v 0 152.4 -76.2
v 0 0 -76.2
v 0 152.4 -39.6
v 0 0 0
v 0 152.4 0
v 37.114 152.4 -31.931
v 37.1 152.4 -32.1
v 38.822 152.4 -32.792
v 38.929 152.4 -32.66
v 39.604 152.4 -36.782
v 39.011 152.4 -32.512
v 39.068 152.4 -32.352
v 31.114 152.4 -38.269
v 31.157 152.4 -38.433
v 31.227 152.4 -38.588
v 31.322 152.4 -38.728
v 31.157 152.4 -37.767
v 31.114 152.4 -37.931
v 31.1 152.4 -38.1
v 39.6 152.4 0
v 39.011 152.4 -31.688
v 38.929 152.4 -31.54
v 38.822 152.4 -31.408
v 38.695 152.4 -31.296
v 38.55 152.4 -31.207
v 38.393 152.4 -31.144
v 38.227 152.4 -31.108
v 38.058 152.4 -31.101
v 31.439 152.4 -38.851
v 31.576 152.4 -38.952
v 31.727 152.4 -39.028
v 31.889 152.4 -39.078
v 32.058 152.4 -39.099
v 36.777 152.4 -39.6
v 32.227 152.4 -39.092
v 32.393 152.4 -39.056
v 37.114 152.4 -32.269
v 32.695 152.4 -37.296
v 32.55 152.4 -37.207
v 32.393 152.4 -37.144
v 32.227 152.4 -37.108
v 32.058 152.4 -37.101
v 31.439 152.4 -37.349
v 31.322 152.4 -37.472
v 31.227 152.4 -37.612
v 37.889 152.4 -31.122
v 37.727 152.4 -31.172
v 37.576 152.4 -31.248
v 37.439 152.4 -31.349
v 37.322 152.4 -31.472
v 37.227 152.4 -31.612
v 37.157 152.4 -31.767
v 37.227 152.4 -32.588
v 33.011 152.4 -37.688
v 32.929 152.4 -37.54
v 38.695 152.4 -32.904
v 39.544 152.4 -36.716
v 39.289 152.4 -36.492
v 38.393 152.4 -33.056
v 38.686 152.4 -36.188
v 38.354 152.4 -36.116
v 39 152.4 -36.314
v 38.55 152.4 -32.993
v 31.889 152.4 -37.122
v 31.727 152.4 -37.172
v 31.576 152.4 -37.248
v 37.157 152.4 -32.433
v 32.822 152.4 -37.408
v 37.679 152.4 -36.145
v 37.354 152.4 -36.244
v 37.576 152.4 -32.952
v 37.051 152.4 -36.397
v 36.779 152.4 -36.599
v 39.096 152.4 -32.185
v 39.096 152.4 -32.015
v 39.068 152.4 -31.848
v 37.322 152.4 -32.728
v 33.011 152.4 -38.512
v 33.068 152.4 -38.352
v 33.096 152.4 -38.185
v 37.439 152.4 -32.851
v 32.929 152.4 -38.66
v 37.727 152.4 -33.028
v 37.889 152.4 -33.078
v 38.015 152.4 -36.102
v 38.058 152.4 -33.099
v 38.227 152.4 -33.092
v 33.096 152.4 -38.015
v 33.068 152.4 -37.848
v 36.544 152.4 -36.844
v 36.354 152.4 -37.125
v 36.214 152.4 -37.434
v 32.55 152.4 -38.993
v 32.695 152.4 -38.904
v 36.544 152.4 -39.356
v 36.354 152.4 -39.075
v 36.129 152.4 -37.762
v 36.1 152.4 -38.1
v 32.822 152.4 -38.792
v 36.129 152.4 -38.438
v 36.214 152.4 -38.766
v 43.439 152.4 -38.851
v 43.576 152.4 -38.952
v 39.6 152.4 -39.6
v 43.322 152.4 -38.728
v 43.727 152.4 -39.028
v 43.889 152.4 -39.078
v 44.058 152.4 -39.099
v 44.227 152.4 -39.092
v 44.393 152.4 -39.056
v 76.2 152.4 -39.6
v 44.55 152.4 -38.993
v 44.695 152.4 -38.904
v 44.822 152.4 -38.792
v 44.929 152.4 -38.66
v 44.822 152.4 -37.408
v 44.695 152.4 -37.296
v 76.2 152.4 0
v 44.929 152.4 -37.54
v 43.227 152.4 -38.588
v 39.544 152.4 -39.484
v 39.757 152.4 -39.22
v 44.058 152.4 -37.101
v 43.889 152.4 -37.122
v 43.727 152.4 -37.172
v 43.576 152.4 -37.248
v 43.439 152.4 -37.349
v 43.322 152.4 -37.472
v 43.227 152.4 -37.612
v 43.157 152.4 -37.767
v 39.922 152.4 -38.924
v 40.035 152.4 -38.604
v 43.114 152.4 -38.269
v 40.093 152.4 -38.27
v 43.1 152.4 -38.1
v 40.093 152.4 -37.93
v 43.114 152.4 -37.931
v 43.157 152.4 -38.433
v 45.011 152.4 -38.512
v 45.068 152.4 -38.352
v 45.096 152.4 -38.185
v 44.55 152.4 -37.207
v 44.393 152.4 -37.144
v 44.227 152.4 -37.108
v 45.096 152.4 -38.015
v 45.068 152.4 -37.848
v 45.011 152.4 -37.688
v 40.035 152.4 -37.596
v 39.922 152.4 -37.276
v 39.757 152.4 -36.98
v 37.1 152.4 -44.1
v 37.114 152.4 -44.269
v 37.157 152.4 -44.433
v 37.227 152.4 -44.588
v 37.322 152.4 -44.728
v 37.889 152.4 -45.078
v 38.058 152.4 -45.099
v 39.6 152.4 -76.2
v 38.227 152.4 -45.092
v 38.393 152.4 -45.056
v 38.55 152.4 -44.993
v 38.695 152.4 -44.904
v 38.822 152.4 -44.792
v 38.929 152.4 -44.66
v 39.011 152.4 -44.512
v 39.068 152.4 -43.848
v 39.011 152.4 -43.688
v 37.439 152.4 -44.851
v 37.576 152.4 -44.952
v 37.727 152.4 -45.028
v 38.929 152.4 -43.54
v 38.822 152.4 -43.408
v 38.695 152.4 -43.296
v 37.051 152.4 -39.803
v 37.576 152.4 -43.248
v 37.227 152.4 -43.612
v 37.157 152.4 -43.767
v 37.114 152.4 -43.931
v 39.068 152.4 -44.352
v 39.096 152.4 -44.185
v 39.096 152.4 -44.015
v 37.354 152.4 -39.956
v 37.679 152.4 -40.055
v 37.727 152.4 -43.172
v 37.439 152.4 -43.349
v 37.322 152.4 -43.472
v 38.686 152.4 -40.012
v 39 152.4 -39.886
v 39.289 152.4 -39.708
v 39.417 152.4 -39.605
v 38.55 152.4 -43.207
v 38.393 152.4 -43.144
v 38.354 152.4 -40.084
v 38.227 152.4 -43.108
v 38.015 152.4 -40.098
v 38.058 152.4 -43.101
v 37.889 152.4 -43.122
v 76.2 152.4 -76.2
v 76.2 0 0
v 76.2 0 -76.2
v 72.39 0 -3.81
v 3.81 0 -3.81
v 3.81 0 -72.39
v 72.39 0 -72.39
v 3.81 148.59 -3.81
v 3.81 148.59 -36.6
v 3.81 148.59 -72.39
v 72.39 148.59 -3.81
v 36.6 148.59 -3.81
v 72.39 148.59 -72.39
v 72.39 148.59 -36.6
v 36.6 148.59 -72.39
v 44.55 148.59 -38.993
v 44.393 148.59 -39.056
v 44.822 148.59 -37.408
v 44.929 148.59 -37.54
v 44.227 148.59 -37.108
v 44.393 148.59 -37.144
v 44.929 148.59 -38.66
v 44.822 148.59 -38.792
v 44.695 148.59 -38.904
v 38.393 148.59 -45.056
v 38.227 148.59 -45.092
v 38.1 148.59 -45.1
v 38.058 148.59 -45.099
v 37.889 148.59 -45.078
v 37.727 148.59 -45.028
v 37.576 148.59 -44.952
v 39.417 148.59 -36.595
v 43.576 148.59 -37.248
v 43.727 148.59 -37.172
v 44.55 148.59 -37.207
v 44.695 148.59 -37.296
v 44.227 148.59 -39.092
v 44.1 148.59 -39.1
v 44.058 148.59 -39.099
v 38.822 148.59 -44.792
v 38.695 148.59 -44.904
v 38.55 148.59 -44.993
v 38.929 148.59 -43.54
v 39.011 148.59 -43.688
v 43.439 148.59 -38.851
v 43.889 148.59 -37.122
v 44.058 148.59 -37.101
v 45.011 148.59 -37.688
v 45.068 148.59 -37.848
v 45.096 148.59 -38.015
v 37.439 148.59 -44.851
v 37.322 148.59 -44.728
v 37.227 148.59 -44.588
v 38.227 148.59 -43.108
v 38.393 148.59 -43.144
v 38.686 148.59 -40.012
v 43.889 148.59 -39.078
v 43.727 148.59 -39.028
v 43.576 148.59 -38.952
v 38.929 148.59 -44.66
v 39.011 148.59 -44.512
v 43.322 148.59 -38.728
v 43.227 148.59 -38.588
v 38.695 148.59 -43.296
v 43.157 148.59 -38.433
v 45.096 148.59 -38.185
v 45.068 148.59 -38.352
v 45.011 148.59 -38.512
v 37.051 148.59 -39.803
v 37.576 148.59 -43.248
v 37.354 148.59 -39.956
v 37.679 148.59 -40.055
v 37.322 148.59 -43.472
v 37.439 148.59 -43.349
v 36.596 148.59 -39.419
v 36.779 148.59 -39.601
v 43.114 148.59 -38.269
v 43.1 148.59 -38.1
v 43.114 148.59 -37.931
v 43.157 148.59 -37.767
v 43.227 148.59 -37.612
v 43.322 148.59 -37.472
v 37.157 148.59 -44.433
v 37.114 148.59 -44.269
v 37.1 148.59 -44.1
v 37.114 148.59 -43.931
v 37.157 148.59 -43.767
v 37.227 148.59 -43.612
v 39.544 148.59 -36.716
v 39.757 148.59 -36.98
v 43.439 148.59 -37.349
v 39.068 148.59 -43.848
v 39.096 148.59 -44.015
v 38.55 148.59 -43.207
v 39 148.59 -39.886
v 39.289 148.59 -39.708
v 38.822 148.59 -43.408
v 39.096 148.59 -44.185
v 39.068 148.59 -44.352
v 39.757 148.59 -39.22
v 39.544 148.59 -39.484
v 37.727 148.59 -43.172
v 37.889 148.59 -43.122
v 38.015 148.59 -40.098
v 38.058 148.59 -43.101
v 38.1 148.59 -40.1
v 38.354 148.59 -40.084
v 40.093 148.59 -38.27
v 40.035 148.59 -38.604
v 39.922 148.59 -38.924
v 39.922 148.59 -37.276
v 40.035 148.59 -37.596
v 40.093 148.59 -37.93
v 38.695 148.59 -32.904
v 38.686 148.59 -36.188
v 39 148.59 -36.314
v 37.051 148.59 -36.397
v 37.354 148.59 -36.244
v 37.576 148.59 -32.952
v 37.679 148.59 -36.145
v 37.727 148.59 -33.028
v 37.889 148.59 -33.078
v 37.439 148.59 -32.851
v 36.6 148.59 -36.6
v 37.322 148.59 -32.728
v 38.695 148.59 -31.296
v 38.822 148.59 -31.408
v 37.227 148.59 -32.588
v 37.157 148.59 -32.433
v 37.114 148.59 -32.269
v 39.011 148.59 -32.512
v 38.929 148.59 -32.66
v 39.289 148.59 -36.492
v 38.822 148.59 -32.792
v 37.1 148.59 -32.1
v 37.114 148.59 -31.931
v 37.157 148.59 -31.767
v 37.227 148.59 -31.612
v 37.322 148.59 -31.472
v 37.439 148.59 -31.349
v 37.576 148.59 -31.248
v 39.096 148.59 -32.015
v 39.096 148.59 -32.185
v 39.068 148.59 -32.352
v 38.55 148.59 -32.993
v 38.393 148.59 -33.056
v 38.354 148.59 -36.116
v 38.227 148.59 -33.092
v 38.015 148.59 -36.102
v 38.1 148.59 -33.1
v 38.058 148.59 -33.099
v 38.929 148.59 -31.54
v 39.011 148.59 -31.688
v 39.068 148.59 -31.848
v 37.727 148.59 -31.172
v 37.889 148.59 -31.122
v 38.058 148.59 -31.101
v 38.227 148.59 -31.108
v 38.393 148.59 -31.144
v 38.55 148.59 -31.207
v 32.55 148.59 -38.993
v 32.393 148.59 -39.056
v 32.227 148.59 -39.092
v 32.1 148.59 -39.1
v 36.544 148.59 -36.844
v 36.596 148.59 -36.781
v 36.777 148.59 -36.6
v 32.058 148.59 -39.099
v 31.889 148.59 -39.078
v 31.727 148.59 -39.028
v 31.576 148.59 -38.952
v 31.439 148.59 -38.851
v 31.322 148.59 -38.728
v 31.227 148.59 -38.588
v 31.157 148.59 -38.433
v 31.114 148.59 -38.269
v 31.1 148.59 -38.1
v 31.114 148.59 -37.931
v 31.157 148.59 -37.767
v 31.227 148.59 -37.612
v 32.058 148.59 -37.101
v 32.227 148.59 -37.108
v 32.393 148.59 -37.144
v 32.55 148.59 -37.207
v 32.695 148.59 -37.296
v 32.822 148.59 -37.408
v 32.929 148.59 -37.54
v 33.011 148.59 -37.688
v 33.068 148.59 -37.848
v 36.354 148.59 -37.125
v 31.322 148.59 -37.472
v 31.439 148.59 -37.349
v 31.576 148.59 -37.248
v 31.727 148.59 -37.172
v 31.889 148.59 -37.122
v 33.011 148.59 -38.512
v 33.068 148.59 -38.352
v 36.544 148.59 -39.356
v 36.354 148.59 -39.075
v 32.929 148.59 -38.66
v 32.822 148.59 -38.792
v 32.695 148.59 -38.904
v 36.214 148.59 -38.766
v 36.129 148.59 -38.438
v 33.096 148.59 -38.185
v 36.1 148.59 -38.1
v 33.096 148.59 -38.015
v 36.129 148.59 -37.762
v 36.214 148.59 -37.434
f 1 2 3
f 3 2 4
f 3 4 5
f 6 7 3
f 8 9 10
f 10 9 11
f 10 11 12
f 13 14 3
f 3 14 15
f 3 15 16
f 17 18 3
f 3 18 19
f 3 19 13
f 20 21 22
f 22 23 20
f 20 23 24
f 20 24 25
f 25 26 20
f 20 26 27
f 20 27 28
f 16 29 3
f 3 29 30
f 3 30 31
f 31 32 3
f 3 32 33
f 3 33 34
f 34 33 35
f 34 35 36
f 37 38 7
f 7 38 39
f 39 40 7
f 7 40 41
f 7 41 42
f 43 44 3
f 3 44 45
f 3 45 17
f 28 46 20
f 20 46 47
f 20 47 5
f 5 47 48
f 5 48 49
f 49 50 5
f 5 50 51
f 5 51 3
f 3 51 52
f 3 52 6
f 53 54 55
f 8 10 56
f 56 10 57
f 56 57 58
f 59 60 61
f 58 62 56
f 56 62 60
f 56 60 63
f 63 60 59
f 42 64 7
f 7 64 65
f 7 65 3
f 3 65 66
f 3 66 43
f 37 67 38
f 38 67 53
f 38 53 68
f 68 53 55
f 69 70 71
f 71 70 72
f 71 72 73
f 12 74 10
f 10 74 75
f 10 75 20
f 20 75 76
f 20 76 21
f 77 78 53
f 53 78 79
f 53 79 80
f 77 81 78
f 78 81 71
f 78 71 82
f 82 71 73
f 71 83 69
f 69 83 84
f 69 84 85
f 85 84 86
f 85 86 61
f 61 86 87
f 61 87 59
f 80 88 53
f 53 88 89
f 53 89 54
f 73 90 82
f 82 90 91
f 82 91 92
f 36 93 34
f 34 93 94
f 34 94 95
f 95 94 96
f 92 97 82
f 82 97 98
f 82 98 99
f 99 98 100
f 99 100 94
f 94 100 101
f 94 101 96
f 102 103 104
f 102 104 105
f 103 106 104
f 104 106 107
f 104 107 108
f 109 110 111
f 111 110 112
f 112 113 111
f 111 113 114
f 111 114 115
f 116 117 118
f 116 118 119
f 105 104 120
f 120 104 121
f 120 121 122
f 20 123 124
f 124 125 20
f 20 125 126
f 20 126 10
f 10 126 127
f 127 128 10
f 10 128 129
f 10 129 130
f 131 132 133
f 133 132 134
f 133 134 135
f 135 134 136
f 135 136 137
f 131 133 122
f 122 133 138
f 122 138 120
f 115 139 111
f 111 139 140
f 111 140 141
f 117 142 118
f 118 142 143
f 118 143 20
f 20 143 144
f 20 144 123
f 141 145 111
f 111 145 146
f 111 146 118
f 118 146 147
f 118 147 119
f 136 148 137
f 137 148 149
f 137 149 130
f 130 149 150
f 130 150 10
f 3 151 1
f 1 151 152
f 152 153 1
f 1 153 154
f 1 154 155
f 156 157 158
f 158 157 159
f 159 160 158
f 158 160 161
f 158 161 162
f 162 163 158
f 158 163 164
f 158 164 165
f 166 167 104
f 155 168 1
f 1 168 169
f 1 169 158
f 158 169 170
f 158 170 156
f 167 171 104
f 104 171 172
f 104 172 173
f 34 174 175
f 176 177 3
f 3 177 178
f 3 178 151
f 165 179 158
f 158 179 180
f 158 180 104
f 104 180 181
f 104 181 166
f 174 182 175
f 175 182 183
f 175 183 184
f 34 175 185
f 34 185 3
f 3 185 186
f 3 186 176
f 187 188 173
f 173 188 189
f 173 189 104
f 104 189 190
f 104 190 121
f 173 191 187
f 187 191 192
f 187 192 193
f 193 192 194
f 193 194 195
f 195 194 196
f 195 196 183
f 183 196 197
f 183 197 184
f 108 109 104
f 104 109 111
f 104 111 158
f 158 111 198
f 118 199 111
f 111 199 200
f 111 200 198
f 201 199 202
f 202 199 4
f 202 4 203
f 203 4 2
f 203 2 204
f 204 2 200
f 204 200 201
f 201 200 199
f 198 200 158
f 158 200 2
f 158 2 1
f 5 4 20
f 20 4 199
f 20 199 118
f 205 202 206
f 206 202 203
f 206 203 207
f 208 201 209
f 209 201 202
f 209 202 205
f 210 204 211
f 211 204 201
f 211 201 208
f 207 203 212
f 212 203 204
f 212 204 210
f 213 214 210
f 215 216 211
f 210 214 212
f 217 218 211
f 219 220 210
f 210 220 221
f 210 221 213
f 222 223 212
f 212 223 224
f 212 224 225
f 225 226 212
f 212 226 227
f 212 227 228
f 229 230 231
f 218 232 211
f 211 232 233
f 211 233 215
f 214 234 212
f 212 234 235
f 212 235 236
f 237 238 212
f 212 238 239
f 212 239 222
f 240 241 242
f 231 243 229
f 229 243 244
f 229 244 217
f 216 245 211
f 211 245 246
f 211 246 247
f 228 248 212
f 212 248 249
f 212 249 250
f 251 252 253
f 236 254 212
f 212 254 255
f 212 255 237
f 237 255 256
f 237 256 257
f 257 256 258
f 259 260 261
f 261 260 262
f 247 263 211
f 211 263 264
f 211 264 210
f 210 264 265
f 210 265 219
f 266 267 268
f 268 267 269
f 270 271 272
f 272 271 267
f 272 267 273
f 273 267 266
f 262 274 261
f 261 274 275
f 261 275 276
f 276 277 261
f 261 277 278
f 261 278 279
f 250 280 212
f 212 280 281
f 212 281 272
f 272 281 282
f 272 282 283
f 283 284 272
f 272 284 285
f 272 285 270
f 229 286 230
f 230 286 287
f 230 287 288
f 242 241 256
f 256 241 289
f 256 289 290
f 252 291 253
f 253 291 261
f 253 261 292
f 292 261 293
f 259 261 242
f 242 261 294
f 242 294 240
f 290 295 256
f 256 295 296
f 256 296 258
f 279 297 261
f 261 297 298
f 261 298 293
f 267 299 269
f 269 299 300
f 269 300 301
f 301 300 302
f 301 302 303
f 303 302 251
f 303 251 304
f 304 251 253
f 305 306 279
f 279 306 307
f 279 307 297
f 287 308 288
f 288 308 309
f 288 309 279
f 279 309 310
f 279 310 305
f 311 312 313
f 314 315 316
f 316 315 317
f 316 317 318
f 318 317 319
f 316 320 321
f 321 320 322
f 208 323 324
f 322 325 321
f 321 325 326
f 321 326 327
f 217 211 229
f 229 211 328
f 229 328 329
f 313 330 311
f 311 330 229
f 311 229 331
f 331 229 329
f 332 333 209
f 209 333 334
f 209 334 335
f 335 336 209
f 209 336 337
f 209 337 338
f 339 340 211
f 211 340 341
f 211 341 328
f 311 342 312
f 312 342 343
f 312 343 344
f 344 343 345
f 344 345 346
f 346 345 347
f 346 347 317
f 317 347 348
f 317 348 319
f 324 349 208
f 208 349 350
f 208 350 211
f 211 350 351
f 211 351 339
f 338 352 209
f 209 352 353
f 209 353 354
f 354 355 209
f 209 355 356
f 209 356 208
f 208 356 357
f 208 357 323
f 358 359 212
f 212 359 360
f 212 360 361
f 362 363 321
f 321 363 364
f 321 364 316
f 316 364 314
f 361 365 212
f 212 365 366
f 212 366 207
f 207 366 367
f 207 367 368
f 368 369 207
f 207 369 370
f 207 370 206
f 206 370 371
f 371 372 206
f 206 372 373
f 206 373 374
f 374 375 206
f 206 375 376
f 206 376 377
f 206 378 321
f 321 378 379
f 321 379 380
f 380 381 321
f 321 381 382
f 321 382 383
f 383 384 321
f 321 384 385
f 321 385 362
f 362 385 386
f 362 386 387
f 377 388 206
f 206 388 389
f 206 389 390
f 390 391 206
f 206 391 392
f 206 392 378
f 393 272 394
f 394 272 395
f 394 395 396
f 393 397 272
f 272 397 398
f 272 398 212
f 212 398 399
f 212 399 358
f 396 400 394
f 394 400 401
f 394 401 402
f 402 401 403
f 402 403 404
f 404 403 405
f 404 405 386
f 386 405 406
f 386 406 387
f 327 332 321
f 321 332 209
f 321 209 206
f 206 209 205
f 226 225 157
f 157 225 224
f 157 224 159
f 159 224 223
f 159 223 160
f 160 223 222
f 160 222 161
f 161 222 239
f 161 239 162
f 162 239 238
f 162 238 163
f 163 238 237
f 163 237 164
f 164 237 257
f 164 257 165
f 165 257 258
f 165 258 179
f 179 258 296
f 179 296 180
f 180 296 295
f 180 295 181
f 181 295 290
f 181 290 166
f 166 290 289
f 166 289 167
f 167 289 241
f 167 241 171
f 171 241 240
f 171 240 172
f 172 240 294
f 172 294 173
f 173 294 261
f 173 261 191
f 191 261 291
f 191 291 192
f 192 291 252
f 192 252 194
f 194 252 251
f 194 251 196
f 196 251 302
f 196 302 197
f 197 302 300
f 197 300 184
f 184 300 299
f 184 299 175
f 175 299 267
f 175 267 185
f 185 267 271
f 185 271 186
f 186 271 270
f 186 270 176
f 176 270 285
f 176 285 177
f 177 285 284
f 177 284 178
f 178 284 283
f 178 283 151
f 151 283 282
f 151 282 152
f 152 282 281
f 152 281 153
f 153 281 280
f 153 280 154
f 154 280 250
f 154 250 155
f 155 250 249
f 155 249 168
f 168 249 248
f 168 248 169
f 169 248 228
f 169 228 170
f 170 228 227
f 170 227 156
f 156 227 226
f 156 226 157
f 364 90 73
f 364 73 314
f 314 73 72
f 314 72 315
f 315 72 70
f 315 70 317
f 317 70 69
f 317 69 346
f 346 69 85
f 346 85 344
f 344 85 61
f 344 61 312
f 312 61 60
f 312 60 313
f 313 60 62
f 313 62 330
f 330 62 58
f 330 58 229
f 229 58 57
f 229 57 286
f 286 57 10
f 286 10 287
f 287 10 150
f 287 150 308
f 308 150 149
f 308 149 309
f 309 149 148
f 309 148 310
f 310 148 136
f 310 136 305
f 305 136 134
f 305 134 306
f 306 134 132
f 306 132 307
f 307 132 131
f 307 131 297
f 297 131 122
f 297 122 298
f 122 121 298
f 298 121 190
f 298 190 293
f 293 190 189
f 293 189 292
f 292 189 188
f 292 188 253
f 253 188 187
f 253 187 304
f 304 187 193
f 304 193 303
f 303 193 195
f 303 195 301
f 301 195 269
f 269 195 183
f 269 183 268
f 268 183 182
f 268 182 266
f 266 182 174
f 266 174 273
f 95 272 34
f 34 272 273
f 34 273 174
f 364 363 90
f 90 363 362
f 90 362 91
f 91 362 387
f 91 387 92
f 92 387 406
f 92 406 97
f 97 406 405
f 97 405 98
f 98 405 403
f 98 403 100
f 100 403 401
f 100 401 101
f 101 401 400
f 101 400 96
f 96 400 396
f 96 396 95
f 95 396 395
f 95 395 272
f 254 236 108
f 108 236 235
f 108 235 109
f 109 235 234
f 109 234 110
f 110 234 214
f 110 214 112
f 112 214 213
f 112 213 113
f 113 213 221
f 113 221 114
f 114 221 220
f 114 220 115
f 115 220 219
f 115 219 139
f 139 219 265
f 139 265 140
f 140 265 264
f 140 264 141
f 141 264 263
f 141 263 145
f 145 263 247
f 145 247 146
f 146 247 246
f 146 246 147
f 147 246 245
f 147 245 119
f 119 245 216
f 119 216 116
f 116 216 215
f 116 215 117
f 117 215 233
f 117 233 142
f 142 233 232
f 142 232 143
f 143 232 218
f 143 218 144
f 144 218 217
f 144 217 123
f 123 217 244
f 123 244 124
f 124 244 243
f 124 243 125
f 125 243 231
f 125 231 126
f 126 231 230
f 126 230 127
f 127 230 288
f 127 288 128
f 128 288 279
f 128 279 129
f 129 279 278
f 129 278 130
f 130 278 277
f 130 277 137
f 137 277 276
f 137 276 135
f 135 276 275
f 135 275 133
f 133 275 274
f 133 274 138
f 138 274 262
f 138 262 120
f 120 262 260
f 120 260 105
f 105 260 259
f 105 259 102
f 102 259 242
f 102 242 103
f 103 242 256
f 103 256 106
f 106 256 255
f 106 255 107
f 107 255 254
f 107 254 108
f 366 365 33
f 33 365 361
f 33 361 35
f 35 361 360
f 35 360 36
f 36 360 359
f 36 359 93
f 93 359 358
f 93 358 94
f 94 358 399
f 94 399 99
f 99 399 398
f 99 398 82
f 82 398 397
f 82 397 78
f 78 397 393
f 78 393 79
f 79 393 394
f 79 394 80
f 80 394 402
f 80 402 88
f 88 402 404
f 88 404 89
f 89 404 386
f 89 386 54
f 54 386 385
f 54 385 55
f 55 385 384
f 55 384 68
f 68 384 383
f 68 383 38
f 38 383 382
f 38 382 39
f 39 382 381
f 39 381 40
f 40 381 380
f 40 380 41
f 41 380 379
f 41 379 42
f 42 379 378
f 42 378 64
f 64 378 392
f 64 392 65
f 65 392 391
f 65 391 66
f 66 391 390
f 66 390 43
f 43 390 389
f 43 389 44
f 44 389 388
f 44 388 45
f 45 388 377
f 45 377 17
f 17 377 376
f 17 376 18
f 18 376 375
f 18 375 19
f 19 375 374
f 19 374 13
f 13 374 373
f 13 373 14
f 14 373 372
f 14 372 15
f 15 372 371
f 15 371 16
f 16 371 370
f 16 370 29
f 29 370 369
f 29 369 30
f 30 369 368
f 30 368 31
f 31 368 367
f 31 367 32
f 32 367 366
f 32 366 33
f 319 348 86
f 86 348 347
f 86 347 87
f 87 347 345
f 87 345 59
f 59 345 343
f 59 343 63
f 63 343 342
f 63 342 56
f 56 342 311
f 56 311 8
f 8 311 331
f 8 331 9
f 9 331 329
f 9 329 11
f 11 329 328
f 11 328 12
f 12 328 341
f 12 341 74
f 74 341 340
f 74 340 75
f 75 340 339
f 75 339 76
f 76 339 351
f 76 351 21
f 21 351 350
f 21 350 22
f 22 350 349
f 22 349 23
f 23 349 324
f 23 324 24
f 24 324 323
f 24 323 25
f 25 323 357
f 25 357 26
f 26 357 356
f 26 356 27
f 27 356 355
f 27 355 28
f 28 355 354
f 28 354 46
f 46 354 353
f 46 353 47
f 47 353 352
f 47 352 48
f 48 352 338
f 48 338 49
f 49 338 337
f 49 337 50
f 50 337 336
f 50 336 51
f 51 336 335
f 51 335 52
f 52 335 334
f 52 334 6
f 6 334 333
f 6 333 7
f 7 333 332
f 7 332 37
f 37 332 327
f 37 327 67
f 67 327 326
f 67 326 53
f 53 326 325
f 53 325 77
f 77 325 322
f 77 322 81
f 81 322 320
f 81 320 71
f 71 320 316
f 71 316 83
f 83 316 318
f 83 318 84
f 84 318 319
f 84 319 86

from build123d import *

# Parameters (mm, degrees)
SKETCH1_W           = 76.2
SKETCH1_H           = 152.4
BOSS_EXTRUDE1_DEPTH = 76.2
SKETCH2_W           = 68.58
SKETCH2_H           = 68.58
CUT_EXTRUDE1_DEPTH  = 148.59
SKETCH3_R           = 2
SKETCH3_R_2         = 1
CUT_EXTRUDE2_DEPTH  = 153.4


with BuildPart() as part:
    # Sketch1 → Boss-Extrude1 (new body)
    with BuildSketch(Plane.XY):
        with Locations((38.1, 76.2)):
            Rectangle(SKETCH1_W, SKETCH1_H)
    extrude(amount=-BOSS_EXTRUDE1_DEPTH)

    # Sketch2 → Cut-Extrude1 (cut)
    with BuildSketch(Plane.XZ):
        with Locations((38.1, -38.1)):
            Rectangle(SKETCH2_W, SKETCH2_H)
    extrude(amount=-CUT_EXTRUDE1_DEPTH, mode=Mode.SUBTRACT)

    # Sketch3 → Cut-Extrude2 (cut, through all)
    with BuildSketch(Plane(origin=(0, 152.4, 0), x_dir=(1, 0, 0), z_dir=(0, 1, 0))):
        with Locations((38.1, 38.1)):
            Circle(SKETCH3_R)
        with Locations((38.1, 44.1)):
            Circle(SKETCH3_R_2)
        with Locations((38.1, 32.1)):
            Circle(SKETCH3_R_2)
        with Locations((44.1, 38.1)):
            Circle(SKETCH3_R_2)
        with Locations((32.1, 38.1)):
            Circle(SKETCH3_R_2)
    extrude(amount=-CUT_EXTRUDE2_DEPTH, mode=Mode.SUBTRACT)


solid = part.part
